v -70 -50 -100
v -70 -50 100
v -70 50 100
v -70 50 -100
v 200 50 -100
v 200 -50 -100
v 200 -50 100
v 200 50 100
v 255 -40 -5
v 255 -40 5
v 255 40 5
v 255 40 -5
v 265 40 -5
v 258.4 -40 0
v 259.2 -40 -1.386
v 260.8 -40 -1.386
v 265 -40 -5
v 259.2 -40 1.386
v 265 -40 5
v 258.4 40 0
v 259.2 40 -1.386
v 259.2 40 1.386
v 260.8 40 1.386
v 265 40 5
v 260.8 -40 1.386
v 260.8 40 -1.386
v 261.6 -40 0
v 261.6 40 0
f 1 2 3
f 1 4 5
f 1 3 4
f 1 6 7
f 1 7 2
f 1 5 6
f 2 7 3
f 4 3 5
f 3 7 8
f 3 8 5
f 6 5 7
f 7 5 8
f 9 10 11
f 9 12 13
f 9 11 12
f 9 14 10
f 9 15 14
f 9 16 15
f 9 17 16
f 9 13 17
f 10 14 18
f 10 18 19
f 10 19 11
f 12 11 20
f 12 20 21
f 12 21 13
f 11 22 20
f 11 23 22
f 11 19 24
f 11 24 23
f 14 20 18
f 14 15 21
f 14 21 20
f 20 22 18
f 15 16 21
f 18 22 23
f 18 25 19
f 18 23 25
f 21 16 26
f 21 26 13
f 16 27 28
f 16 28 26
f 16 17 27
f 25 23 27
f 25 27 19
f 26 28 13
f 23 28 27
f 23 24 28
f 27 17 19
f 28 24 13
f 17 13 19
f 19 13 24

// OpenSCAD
// file: ../parameters.scad
week = "77";
global_clearance = 0.5;

layer_thickness = 0.3;

base_patern = 10;

//Main tube diameter - hole [mm]
main_tube_outer_diameter = 25.4;
main_tube_inner_diameter = 23.05;

// Nastavení parametrů rotoru

gliding_aggle = 14;         // tenhle úhel by se zřejmě v budoucnu měl počítat z požadované klouzavosti.

rotor_blade_AOA = 1.5;      // nastavení úhlu náběhu rotorového listu

// Rotor Auto-G2
rotor_blade_rod = true;  // generovat diru pro uhlikove tycky
rotor_blade_length = 500;   // délka rotorového listu
// rotor_blade_length = 450 - 15;   // délka rotorového listu -- nastaveni prvniho vytisku
//rotor_blade_length = 460;   // délka rotorového listu
rotor_blade_depth = 45.5+2;     // hloubka rotorového listu
rotor_balde_tip_cutoff = 15.5;


blade_mount_length = 30;

blade_mount_width = 17;
blade_mount_thickness = 4.6;
blade_mount_screw_offset = 5; // distance of first screw from rotor end

// Testovaci maly rotor

        /*
        rotor_blade_rod = false;
        rotor_blade_length = 145;   // délka rotorového listu
        rotor_blade_depth = 45.5 * (145/385);     // hloubka rotorového listu
        blade_mount_length = 20;
        blade_mount_width = 10;
        blade_mount_thickness = 4;
        */

// konec parametru pro testovaci maly rotor

rotor_height = 180;         // výška otočného kloubu rotoru nad hlavní trubkou vírníku (odhad)
rotor_blades_count = 2;
rotor_delta_angle = 12;
rotor_blade_thickness = 5.1;
//rotor_balde_tip_cutoff = 10;

rotor_blade_naca = 2412;
rotor_blade_parts_count = 4;
//rotor_blade_parts_count = 3;

blade_transition_length = 10; // length of blade transition

blade_mount_screw_distance = (16.47+11.86)/2;

rod_from_end = 10;

/* blade_shell_thickness = 0.4;
blade_shell_thickness_inner = 0.4;
blade_shell_thickness_wire = 0.4;
blade_infill_distance = 25;
blade_infill_overlap = 0; */

/// Nastaveni pro Slic3r
blade_shell_thickness = 0.45;
blade_shell_thickness_inner = 0.2;
blade_shell_thickness_wire = 0.45;
blade_infill_distance = 23;
blade_infill_overlap = 0;


//blade_rod_position = [rotor_blade_depth/4 + 5, 0, 0];
//blade_rod_position2 = [rotor_blade_depth/4 - 5, 0, 0];

//blade_rod_position = [15, 0, 0];
//blade_rod_position2 = [4, 0.3, 0];

//blade_rod1_diameter = 2.58;
//blade_rod2_diameter = 2.58;
//blade_rod3_diameter = 2.13;
blade_rod1_diameter = 2.4;
blade_rod2_diameter = 2.4;
blade_rod3_diameter = 2.4;

// blade_rod1_position = [3.4, 0.3, 0];
blade_rod1_position = [rotor_blade_depth/4 - 8.7, 0.2, 0];
blade_rod2_position = [rotor_blade_depth/4 - 5.8, 0.5, 0];
blade_rod3_position = [rotor_blade_depth/4 + 3.5, 0.5, 0];


blade_glue_holes = 0;

rotor_blade_endtip_diameter = 20;

rotor_blade_part_list = [0, 50, 200, 350, 500];

// vzdalenosti der pro kryty
cover_holes = [base_patern*5, base_patern*13, base_patern*17, base_patern*26];



rotor_head_width =  30;    //Rozměr 1 v nákresu
pylon_wall_thickness = 4.2;  // Rozměr 2 v nákresu
horizontal_screw_distance = 14.5;   // Rozměr 4 v nákresu
vertical_screw_distance = 12;       // rozměr 5 v nkresu
topscrew_distance_endofpylon = 5;

rotorhead_wall_thickness = 3; // sila tistenych dilu


bearing_outer_diameter = 10.2;    // Rozměr B1 v nákresu s přídavkem na toleranci otvoru
bearing_thickness = 4;        // Rozměr B2 v nákresu
//bearing_shaft_length = 19.5;    // Rozměr B3 v nákresu, Originalni hodnota 19.5
bearing_shaft_length = 20;    // Rozměr B3 v nákresu


// nastavení parametrů motoru

engine_angle = -8;
engine_diameter = 55;
engine_offset = 55;

engine_screws_radius = 15;
engine_holes_radius = (24 + 44)/4;
engine_shatf_hole_diameter = 13;

// screw length step - minimum difference in length between two types of screws
basic_screw_length = 5;

//Screw diameter and nut for M6 [mm]
M6_screw_diameter=6.5;
M6_head_diameter = 10+0.5;
M6_head_height = 6;
M6_nut_height = 4.9;
M6_nut_diameter = 11.8;
M6_nut_pocket = 10.4;

//Screw diameter and nut for M5 [mm]
M5_screw_diameter=5.5;
M5_head_height = 5;
M5_head_diameter = 13+0.5;
M5_nut_height = 4.5;
M5_nut_diameter = 9.4;
M5_nut_pocket = 8.4;

//Screw diameter and nut for M4 [mm]
M4_screw_diameter=4.5;
M4_screw_head_height = 4;
M4_nut_height = 3.2;
M4_nut_diameter = 8.4;
M4_nut_pocket = 7.5;

//Screw diameter and nut for M3 [mm]
M3_screw_diameter = 3.2;
M3_nut_height = 2.7;
M3_nut_diameter = 6.6;
M3_screw_head_height = 3;
M3_nut_pocket = 5.6;


//Screw diameter and nut for M2,5 [mm]
M2_5_screw_diameter = 2.7;
M2_5_nut_height = 2.3;
M2_5_nut_diameter = 6;
M2_5_nut_pocket = 5.1;

//Screw diameter and nut for M2 [mm]
M2_screw_diameter = 2.0;
M2_nut_height = 1.8;
M2_nut_diameter = 4.8;
M2_nut_pocket = 3.95;


blade_mount_screw = M3_screw_diameter;
blade_mount_nut = M3_nut_diameter;


//šroub servo
Servo_screw = 1.5;
Servo_nut_height = 1;
Servo_nut_diameter = 2.7;

tail_pipes_distance = 10.16*5;
tail_pipes_diameter = M4_screw_diameter;
tail_pipes_min_wall = 3;

elevator_pitch = 2;


/// ruder parametry

rudder_height = 150;
height_bottom_part = 130;
rudder_depth_max = 200;

below_rudder_height = 30;
rudder_depth = 60;

tail_airfoil_n = 80;




//center_of_gravity_position = [main_pylon_position - tan(gliding_aggle)*rotor_height, 0, 0];


////podzvozek

radius_undercarriage = 25;
vzdalenost_x = tan(20) * 131;
vzdalenost_y = (131 - radius_undercarriage)/tan(79);
uhel_y = 90 - 20;
uhel_x = 90 - 79;

maximum_printable_size = 150;


////Pitotova trubice
Pitot_tube_diameter = 4.02 + 1;
Distance_hole_from_tube = 11.92;  //vzdálenost otvoru pro připevnění od samotné trubičky


////Vlečné zařízení
tow_ring_diameter = 20;
tow_ring_thickness = 5;
tow_ring_groove = 2;
tow_ring_hole_diameter = M3_screw_diameter;

////Simoniny parametry pro nosník rotoru
base_length = 290; //delka podlozky
base_split_position = [0, 290/2, base_length];
base_width = 70; //sirka podlozky - vnější šířka nosníku
base_thickness = 3; //vyska podlozky
rantl_thickness = 3; //sirka steny podlozky
rantl_height = 6.5;
niy=4; //pocet der podelne


// Drazak motoru

motor_holder_height = base_patern * 5;
motor_holder_thickness = 3.5;
motor_holder_motor_height = 25;
motor_holder_side_mount_height = base_patern*2.5;
pylon_holder_side_mount_height = base_patern*4.5;


// Paraetry pylonu


// pylon_height = 250 - pylon_holder_side_mount_height;
pylon_height = 180 + 50 - pylon_holder_side_mount_height;
pilot_height_separation = 120 + 30 - pylon_holder_side_mount_height;
pylon_thickness = 3;
pylon_beam_width = 10;
pylon_base_length = 60;
pylon_ring_length = 40;
pylon_ring_thickness = 3;

pylon_top_width = 20;
pylon_top_length = 20;

pylon_ring_width = 45;
pylon_ring_height_rantl = 12+0.5;
pylon_ring_height = 3;

pylon_angle = atan2(pylon_height,(base_width-pylon_top_width)/2);
echo(pylon_angle);

pylon_bottom_angle = atan2(pilot_height_separation,(base_width-pylon_ring_width)/2-pylon_thickness*1.5);
echo(pylon_bottom_angle);
pylon_top_angle = atan2(pylon_height - pilot_height_separation,(pylon_ring_width - rotor_head_width)/2 - pylon_thickness - pylon_ring_thickness);
echo(pylon_top_angle);
// main file
//@set_slicing_config(slicing/default.ini)
//Priprava na okrytovani

include <../parameters.scad>


module cover_hole(){
  difference(){
    square(5, center = true);
    circle(d=M3_screw_diameter, $fn = 20);
  }
}

module 888_1016(){

  for(x = cover_holes)
    translate([x, 0, 0])
      difference(){
        cube([10, base_width+10, 10], center = true);
        rotate([90, 0, 0])
          cylinder(d = M3_screw_diameter, h = 200, center = true);
        }
}


// modul pro orez blender modelu
module 888_1016_rear_crop(){
  translate([-135 + 155 + 45, 0, 0]) cube([135*2, 100, 200], center = true);
  //translate([135+40+1, base_width/2-4.5, 0]) cube([80, 4, 200], center = true);
  //translate([135+40+1, -base_width/2+4.5, 0]) cube([80, 4, 200], center = true);

}
// modul pro orez blender modelu
module 888_1016_front_crop(){
  translate([150+150, 0, 0]) cube([300, 100, 200], center = true);
  translate([135+40+1, base_width/2-4.5, 0]) cube([60, 5, 200], center = true);
  translate([135+40+1, -base_width/2+4.5, 0]) cube([60, 5, 200], center = true);
}



module 888_1016_rear_holes(){

  for(x = cover_holes)
    translate([x, 0, 0])
        rotate([90, 0, 0])
          cylinder(d = M3_screw_diameter, h = 200, center = true, $fn=30);

}

888_1016();

#888_1016_rear_crop();
